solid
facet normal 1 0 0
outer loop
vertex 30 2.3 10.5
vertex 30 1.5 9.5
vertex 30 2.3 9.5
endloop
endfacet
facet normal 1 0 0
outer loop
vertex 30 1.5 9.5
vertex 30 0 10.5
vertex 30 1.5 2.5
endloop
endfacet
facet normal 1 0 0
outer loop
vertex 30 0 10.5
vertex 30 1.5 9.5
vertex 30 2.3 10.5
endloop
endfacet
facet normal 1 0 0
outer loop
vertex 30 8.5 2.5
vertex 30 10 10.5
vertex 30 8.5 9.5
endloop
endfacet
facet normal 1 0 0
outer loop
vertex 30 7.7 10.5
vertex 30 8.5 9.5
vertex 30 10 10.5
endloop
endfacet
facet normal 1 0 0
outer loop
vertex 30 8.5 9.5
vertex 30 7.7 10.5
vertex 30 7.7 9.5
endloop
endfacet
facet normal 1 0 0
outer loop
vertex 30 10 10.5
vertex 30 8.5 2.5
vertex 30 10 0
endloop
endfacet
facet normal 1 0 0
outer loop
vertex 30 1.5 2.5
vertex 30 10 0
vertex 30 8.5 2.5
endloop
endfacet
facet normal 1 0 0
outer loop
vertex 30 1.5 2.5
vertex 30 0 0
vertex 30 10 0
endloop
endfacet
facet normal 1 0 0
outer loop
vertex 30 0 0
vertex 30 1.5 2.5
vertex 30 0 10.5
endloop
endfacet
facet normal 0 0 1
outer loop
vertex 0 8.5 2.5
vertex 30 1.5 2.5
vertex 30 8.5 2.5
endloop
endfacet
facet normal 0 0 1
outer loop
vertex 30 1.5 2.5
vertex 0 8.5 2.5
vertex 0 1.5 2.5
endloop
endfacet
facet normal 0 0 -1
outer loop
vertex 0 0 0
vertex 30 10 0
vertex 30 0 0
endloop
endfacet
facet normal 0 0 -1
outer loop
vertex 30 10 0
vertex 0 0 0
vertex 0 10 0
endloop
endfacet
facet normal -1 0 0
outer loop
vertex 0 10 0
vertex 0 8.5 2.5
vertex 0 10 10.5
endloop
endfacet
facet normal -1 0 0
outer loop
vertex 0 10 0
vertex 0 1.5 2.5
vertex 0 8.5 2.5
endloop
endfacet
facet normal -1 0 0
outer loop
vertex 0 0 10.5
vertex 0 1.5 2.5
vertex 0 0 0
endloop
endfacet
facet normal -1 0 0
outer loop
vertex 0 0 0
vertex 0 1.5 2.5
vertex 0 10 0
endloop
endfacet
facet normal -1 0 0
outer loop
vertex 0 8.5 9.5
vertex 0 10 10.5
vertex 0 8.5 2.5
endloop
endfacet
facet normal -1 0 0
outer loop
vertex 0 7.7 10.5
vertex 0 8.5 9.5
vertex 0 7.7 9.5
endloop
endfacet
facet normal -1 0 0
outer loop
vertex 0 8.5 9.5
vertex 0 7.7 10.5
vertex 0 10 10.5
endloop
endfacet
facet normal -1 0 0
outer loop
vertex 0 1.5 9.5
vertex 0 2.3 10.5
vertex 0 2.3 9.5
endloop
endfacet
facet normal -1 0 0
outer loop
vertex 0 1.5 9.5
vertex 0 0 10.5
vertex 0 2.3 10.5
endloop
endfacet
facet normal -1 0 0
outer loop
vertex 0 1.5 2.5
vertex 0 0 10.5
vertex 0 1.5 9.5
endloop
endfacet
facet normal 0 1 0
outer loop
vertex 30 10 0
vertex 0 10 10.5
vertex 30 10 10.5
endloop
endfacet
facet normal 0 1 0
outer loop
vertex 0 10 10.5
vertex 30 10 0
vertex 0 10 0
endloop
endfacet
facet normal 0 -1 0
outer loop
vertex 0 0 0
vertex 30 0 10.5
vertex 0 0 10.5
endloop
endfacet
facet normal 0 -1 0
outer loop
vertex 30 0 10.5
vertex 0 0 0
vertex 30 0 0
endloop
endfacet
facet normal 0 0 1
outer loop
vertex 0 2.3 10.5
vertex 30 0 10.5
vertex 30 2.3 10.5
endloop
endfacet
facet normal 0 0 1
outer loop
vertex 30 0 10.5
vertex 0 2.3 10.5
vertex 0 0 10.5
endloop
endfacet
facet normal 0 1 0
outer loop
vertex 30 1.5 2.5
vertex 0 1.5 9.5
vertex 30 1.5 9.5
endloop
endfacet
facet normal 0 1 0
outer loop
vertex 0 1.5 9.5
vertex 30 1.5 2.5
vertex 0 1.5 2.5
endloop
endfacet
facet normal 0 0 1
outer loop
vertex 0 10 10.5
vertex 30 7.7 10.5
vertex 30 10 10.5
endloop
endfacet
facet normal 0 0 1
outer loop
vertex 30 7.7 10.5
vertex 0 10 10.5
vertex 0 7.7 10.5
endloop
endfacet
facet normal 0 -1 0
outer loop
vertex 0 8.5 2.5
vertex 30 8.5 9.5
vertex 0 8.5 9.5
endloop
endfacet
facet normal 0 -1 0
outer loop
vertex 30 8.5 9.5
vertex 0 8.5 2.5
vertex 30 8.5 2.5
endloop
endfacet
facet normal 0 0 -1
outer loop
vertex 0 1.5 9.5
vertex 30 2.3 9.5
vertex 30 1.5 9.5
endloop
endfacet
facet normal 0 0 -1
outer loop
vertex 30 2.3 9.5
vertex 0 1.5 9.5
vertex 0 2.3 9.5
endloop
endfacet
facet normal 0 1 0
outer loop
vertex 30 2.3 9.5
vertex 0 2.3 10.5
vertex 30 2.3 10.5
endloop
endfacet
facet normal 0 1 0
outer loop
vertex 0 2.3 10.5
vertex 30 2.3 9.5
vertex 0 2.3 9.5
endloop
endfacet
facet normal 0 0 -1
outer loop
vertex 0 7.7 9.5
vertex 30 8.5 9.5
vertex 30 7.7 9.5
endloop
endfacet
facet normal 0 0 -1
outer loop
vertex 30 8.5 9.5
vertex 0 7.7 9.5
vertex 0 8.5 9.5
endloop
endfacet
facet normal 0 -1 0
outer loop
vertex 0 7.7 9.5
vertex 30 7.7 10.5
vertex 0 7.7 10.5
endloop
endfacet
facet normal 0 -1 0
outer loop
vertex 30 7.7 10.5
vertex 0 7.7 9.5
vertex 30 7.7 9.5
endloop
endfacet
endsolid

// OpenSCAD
$fn=48;

// TPU 95A slip-on foot for V5 support.
// Print 4 total. Test one first.
// Designed to flex around a 7 mm thick PLA support edge.

L = 30;          // along support bottom rail
inner_w = 7.0;   // support thickness
inner_h = 8.0;   // captures 8 mm of the 10 mm-tall bottom rail
side = 1.5;
sole = 2.5;
lip = 1.0;

// Coordinates: X = length along rail, Y = across support thickness, Z = vertical.
module foot(){
    union(){
        // sole
        cube([L, inner_w + 2*side, sole]);

        // flexible side walls
        translate([0,0,sole]) cube([L,side,inner_h]);
        translate([0,inner_w+side,sole]) cube([L,side,inner_h]);

        // tiny inward lips at top; TPU flexes over the PLA edge
        translate([0,side,sole+inner_h-lip])
            cube([L,0.8,lip]);
        translate([0,side+inner_w-0.8,sole+inner_h-lip])
            cube([L,0.8,lip]);
    }
}

foot();
